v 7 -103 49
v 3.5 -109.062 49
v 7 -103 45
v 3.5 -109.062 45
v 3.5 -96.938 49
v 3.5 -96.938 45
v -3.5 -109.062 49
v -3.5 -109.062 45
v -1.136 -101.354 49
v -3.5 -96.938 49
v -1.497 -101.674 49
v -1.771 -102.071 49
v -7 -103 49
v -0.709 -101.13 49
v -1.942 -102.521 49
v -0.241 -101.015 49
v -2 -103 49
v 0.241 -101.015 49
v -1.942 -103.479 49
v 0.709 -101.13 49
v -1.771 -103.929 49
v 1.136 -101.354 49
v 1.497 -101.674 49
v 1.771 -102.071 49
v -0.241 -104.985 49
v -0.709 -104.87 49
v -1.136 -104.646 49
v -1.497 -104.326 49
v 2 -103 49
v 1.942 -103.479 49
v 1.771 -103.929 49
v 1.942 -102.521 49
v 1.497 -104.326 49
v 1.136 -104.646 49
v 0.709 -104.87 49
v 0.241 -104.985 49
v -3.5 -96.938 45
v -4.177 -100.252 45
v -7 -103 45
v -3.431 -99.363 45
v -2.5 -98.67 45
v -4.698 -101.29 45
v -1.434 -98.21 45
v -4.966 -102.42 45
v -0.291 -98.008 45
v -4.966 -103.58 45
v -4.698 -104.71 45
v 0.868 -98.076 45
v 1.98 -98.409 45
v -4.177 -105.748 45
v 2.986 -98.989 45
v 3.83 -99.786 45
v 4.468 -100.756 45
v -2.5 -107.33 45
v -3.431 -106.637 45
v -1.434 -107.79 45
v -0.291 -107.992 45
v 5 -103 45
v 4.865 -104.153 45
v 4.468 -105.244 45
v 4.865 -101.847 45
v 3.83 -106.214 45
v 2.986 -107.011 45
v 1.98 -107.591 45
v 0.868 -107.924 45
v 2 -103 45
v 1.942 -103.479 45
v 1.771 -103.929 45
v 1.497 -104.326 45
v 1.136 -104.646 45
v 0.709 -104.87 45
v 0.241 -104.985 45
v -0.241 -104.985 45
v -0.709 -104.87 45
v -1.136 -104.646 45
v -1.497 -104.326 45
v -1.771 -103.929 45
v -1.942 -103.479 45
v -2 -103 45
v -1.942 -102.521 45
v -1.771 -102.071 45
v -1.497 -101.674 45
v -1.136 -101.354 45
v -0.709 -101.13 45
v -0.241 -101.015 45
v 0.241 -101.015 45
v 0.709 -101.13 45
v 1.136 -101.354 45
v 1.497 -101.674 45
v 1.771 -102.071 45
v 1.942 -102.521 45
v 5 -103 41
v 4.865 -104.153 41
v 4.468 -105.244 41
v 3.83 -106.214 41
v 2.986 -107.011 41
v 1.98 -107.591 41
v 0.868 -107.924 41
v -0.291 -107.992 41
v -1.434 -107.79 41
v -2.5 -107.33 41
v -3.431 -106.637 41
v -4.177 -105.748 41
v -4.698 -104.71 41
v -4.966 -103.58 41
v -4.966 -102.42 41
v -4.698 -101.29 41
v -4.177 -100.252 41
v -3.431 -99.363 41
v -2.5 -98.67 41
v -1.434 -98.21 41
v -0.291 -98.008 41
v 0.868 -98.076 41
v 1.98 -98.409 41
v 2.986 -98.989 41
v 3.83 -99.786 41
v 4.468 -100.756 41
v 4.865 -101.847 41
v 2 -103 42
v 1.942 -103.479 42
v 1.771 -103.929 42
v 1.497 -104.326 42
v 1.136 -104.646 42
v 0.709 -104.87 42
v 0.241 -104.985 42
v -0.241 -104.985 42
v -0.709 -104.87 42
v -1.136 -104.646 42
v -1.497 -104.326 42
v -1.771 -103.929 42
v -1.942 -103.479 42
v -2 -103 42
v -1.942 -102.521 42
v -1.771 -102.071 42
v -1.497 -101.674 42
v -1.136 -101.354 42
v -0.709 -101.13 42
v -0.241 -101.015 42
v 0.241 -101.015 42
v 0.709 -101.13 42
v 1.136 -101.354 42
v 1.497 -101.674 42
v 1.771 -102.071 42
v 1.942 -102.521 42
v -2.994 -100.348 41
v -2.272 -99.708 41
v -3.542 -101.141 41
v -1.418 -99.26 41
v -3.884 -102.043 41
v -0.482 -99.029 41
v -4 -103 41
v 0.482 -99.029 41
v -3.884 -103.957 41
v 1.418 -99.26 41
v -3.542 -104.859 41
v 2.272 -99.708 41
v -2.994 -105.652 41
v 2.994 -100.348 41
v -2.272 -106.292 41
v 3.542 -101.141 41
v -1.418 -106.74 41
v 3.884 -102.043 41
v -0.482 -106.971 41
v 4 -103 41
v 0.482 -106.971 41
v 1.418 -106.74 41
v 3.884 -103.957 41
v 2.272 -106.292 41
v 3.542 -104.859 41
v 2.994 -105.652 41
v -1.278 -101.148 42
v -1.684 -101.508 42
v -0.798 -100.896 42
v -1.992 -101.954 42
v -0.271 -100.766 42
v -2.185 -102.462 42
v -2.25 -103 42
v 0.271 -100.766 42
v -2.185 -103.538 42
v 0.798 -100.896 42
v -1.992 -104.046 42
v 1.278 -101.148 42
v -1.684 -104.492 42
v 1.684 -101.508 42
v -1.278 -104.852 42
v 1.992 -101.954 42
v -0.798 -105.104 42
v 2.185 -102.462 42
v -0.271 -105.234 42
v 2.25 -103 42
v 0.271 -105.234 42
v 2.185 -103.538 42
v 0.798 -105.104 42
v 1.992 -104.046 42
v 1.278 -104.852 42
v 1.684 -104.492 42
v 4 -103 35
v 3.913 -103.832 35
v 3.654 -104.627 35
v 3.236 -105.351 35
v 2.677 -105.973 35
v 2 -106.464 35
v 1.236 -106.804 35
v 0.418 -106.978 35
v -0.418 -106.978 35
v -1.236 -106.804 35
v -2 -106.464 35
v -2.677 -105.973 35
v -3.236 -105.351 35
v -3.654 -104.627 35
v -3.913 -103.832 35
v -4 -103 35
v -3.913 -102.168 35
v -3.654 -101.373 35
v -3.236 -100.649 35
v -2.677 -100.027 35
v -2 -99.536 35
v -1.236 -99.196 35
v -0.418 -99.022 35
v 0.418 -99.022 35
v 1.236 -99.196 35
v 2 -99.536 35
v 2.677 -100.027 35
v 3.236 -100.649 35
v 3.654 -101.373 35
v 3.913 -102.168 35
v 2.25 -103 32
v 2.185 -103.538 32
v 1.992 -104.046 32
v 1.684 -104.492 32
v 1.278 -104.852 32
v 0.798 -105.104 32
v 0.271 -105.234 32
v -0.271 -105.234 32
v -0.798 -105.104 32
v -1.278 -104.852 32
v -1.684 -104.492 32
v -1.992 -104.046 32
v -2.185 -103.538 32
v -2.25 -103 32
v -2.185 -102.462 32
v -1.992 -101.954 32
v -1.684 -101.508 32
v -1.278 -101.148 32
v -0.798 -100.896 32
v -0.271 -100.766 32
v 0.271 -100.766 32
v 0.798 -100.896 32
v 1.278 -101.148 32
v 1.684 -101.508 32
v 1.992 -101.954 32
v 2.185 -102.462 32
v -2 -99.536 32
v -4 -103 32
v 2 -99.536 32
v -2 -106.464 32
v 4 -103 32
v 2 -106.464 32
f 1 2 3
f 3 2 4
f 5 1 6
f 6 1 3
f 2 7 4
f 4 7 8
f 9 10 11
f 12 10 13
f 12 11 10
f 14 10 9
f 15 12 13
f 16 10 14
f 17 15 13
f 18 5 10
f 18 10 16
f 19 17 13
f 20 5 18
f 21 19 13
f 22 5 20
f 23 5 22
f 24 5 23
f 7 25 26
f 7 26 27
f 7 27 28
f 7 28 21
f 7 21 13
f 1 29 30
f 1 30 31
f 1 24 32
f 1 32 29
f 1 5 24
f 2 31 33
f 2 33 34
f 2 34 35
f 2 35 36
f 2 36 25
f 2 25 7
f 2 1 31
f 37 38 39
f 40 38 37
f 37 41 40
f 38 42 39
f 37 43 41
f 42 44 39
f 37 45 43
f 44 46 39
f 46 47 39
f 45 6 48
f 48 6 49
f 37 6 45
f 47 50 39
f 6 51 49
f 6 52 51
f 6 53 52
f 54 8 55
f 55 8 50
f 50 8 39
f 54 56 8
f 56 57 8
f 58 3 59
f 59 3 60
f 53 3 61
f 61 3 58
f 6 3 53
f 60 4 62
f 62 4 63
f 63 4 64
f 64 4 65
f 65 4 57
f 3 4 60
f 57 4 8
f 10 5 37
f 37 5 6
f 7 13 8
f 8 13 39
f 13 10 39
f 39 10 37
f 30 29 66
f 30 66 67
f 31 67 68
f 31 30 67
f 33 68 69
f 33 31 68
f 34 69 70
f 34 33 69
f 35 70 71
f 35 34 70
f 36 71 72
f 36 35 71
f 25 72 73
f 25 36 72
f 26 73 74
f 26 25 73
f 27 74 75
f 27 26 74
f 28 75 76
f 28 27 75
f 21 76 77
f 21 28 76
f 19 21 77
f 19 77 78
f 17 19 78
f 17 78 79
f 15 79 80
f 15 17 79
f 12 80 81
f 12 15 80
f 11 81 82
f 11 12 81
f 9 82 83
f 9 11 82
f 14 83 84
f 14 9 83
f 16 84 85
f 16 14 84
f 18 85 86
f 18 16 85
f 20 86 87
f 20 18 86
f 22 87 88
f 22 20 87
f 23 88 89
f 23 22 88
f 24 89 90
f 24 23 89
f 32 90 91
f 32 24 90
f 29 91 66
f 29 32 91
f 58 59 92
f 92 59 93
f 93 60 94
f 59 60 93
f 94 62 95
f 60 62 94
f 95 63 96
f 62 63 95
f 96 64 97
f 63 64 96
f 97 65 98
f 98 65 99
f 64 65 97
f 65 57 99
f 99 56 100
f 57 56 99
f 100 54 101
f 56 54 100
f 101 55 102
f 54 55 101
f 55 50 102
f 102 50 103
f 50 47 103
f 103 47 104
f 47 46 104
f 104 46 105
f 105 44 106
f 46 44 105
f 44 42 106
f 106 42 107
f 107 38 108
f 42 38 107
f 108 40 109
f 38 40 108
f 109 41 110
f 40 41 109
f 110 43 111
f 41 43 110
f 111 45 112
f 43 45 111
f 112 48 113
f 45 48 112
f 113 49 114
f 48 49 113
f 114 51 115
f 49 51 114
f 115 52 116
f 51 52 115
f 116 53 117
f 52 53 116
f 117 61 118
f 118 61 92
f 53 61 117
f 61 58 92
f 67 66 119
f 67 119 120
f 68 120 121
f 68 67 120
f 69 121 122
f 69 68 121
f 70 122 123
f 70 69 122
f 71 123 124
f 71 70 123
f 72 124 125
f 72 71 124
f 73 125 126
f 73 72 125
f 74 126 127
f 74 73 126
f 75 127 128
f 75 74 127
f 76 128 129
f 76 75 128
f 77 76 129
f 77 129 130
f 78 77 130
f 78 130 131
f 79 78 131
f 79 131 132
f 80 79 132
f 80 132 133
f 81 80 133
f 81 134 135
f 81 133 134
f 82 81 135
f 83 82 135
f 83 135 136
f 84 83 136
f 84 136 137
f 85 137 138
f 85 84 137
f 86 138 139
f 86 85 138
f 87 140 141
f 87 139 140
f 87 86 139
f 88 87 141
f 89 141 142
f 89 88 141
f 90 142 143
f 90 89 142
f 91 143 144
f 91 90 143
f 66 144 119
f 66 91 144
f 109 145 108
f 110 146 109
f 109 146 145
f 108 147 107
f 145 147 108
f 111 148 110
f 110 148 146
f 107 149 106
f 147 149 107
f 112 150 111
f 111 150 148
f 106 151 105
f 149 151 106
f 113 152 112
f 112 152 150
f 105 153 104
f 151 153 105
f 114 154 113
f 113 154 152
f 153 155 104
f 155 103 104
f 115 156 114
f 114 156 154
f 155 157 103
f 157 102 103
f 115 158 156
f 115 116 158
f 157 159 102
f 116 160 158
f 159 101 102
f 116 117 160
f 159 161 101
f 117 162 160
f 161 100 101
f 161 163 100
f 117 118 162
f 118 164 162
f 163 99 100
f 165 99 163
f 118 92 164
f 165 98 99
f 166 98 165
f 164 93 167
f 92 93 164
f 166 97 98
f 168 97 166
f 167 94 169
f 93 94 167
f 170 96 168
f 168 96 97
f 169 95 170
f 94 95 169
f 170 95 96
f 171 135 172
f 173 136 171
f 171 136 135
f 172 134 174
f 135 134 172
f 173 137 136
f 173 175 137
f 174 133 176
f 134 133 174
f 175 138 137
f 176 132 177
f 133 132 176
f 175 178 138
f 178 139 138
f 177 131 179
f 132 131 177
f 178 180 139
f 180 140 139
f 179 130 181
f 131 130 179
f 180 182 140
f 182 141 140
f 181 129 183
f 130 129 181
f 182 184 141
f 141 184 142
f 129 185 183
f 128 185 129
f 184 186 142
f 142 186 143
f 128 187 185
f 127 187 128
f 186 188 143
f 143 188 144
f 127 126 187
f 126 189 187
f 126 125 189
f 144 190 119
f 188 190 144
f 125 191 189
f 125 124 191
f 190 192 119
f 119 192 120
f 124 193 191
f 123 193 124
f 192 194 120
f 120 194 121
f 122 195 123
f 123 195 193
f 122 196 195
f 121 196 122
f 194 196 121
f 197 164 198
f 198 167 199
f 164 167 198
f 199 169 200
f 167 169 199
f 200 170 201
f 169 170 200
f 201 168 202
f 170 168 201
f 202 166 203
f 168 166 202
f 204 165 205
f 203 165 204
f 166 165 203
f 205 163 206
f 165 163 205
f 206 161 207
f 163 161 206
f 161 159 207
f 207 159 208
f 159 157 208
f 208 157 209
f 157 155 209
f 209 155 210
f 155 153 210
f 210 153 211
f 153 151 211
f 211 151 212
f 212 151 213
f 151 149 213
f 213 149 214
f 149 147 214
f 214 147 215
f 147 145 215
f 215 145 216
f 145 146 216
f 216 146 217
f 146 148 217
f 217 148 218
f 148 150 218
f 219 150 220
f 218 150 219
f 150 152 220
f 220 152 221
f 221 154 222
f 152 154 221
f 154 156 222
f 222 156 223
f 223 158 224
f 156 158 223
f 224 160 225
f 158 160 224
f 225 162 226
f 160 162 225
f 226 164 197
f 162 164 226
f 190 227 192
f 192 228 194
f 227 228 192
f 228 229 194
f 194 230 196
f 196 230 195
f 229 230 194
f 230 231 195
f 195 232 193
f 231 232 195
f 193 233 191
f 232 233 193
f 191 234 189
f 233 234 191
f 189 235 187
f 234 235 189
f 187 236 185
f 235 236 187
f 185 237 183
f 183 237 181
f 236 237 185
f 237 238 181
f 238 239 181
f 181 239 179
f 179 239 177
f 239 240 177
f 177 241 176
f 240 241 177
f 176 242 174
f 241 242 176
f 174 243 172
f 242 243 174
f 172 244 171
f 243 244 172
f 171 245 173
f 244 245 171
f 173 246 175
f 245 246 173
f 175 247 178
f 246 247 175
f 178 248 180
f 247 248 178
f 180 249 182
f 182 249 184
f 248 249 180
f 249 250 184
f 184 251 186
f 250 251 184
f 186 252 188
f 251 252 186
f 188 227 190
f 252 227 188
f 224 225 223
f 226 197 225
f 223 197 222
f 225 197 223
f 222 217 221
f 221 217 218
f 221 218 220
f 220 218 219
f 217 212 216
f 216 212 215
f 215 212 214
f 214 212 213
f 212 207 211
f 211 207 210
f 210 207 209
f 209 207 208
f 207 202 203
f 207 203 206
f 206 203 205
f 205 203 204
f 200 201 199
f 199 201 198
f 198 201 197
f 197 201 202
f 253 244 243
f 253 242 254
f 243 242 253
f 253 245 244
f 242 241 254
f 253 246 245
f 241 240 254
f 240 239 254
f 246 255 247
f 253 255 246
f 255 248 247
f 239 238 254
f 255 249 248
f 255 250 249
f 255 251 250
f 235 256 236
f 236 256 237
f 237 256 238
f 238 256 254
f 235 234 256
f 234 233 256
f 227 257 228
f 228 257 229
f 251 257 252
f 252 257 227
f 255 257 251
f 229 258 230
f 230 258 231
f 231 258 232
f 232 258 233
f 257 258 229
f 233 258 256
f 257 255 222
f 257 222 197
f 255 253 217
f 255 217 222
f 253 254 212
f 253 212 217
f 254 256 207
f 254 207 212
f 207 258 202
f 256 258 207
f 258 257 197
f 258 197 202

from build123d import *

# Parameters (mm, degrees)
SKETCH151_R             = 2
PAD064_DEPTH            = 4
SKETCH152_R             = 5
SKETCH152_R_2           = 2
PAD065_DEPTH            = 4
SKETCH153_R             = 4
SKETCH153_R_2           = 2
PAD066_DEPTH            = 9
SKETCH157_R             = 2.25
POCKET066_DEPTH         = 10
SKETCH164_R             = 5
POCKET067_DEPTH         = 3
BODY018_PLACEMENT_ANGLE = 90


with BuildPart() as part:
    # Sketch151 → Pad064 (new body)
    with BuildSketch(Plane.XZ):
        Polygon((7, 0), (3.5, 6.062178), (-3.5, 6.062178), (-7, 0), (-3.5, -6.062178), (3.5, -6.062178), align=None)
        Circle(SKETCH151_R, mode=Mode.SUBTRACT)
    extrude(amount=PAD064_DEPTH)

    # Sketch152 (on Face9 of Pad064) → Pad065 (join)
    with BuildSketch(Plane.XZ.offset(4)):
        Circle(SKETCH152_R)
        Circle(SKETCH152_R_2, mode=Mode.SUBTRACT)
    extrude(amount=PAD065_DEPTH)

    # Sketch153 (on Face12 of Pad065) → Pad066 (join)
    with BuildSketch(Plane.XZ.offset(8)):
        Circle(SKETCH153_R)
        Circle(SKETCH153_R_2, mode=Mode.SUBTRACT)
    extrude(amount=PAD066_DEPTH)

    # Sketch157 (on Face15 of Pad066) → Pocket066 (cut)
    with BuildSketch(Plane.XZ.offset(17)):
        Circle(SKETCH157_R)
    extrude(amount=-POCKET066_DEPTH, mode=Mode.SUBTRACT)

    # Sketch164 (on Face16 of Pocket066) → Pocket067 (cut)
    with BuildSketch(Plane.XZ.offset(17)):
        Circle(SKETCH164_R)
        Polygon((4, 0), (2, 3.464102), (-2, 3.464102), (-4, 0), (-2, -3.464102), (2, -3.464102), align=None, mode=Mode.SUBTRACT)
    extrude(amount=-POCKET067_DEPTH, mode=Mode.SUBTRACT)


with BuildPart() as part_1:
    # Body018 placement: moved
    add(part.part.moved(Location((0, -103, 49))).rotate(Axis((0, -103, 49), (1, 0, 0)), BODY018_PLACEMENT_ANGLE))


solid = part_1.part
